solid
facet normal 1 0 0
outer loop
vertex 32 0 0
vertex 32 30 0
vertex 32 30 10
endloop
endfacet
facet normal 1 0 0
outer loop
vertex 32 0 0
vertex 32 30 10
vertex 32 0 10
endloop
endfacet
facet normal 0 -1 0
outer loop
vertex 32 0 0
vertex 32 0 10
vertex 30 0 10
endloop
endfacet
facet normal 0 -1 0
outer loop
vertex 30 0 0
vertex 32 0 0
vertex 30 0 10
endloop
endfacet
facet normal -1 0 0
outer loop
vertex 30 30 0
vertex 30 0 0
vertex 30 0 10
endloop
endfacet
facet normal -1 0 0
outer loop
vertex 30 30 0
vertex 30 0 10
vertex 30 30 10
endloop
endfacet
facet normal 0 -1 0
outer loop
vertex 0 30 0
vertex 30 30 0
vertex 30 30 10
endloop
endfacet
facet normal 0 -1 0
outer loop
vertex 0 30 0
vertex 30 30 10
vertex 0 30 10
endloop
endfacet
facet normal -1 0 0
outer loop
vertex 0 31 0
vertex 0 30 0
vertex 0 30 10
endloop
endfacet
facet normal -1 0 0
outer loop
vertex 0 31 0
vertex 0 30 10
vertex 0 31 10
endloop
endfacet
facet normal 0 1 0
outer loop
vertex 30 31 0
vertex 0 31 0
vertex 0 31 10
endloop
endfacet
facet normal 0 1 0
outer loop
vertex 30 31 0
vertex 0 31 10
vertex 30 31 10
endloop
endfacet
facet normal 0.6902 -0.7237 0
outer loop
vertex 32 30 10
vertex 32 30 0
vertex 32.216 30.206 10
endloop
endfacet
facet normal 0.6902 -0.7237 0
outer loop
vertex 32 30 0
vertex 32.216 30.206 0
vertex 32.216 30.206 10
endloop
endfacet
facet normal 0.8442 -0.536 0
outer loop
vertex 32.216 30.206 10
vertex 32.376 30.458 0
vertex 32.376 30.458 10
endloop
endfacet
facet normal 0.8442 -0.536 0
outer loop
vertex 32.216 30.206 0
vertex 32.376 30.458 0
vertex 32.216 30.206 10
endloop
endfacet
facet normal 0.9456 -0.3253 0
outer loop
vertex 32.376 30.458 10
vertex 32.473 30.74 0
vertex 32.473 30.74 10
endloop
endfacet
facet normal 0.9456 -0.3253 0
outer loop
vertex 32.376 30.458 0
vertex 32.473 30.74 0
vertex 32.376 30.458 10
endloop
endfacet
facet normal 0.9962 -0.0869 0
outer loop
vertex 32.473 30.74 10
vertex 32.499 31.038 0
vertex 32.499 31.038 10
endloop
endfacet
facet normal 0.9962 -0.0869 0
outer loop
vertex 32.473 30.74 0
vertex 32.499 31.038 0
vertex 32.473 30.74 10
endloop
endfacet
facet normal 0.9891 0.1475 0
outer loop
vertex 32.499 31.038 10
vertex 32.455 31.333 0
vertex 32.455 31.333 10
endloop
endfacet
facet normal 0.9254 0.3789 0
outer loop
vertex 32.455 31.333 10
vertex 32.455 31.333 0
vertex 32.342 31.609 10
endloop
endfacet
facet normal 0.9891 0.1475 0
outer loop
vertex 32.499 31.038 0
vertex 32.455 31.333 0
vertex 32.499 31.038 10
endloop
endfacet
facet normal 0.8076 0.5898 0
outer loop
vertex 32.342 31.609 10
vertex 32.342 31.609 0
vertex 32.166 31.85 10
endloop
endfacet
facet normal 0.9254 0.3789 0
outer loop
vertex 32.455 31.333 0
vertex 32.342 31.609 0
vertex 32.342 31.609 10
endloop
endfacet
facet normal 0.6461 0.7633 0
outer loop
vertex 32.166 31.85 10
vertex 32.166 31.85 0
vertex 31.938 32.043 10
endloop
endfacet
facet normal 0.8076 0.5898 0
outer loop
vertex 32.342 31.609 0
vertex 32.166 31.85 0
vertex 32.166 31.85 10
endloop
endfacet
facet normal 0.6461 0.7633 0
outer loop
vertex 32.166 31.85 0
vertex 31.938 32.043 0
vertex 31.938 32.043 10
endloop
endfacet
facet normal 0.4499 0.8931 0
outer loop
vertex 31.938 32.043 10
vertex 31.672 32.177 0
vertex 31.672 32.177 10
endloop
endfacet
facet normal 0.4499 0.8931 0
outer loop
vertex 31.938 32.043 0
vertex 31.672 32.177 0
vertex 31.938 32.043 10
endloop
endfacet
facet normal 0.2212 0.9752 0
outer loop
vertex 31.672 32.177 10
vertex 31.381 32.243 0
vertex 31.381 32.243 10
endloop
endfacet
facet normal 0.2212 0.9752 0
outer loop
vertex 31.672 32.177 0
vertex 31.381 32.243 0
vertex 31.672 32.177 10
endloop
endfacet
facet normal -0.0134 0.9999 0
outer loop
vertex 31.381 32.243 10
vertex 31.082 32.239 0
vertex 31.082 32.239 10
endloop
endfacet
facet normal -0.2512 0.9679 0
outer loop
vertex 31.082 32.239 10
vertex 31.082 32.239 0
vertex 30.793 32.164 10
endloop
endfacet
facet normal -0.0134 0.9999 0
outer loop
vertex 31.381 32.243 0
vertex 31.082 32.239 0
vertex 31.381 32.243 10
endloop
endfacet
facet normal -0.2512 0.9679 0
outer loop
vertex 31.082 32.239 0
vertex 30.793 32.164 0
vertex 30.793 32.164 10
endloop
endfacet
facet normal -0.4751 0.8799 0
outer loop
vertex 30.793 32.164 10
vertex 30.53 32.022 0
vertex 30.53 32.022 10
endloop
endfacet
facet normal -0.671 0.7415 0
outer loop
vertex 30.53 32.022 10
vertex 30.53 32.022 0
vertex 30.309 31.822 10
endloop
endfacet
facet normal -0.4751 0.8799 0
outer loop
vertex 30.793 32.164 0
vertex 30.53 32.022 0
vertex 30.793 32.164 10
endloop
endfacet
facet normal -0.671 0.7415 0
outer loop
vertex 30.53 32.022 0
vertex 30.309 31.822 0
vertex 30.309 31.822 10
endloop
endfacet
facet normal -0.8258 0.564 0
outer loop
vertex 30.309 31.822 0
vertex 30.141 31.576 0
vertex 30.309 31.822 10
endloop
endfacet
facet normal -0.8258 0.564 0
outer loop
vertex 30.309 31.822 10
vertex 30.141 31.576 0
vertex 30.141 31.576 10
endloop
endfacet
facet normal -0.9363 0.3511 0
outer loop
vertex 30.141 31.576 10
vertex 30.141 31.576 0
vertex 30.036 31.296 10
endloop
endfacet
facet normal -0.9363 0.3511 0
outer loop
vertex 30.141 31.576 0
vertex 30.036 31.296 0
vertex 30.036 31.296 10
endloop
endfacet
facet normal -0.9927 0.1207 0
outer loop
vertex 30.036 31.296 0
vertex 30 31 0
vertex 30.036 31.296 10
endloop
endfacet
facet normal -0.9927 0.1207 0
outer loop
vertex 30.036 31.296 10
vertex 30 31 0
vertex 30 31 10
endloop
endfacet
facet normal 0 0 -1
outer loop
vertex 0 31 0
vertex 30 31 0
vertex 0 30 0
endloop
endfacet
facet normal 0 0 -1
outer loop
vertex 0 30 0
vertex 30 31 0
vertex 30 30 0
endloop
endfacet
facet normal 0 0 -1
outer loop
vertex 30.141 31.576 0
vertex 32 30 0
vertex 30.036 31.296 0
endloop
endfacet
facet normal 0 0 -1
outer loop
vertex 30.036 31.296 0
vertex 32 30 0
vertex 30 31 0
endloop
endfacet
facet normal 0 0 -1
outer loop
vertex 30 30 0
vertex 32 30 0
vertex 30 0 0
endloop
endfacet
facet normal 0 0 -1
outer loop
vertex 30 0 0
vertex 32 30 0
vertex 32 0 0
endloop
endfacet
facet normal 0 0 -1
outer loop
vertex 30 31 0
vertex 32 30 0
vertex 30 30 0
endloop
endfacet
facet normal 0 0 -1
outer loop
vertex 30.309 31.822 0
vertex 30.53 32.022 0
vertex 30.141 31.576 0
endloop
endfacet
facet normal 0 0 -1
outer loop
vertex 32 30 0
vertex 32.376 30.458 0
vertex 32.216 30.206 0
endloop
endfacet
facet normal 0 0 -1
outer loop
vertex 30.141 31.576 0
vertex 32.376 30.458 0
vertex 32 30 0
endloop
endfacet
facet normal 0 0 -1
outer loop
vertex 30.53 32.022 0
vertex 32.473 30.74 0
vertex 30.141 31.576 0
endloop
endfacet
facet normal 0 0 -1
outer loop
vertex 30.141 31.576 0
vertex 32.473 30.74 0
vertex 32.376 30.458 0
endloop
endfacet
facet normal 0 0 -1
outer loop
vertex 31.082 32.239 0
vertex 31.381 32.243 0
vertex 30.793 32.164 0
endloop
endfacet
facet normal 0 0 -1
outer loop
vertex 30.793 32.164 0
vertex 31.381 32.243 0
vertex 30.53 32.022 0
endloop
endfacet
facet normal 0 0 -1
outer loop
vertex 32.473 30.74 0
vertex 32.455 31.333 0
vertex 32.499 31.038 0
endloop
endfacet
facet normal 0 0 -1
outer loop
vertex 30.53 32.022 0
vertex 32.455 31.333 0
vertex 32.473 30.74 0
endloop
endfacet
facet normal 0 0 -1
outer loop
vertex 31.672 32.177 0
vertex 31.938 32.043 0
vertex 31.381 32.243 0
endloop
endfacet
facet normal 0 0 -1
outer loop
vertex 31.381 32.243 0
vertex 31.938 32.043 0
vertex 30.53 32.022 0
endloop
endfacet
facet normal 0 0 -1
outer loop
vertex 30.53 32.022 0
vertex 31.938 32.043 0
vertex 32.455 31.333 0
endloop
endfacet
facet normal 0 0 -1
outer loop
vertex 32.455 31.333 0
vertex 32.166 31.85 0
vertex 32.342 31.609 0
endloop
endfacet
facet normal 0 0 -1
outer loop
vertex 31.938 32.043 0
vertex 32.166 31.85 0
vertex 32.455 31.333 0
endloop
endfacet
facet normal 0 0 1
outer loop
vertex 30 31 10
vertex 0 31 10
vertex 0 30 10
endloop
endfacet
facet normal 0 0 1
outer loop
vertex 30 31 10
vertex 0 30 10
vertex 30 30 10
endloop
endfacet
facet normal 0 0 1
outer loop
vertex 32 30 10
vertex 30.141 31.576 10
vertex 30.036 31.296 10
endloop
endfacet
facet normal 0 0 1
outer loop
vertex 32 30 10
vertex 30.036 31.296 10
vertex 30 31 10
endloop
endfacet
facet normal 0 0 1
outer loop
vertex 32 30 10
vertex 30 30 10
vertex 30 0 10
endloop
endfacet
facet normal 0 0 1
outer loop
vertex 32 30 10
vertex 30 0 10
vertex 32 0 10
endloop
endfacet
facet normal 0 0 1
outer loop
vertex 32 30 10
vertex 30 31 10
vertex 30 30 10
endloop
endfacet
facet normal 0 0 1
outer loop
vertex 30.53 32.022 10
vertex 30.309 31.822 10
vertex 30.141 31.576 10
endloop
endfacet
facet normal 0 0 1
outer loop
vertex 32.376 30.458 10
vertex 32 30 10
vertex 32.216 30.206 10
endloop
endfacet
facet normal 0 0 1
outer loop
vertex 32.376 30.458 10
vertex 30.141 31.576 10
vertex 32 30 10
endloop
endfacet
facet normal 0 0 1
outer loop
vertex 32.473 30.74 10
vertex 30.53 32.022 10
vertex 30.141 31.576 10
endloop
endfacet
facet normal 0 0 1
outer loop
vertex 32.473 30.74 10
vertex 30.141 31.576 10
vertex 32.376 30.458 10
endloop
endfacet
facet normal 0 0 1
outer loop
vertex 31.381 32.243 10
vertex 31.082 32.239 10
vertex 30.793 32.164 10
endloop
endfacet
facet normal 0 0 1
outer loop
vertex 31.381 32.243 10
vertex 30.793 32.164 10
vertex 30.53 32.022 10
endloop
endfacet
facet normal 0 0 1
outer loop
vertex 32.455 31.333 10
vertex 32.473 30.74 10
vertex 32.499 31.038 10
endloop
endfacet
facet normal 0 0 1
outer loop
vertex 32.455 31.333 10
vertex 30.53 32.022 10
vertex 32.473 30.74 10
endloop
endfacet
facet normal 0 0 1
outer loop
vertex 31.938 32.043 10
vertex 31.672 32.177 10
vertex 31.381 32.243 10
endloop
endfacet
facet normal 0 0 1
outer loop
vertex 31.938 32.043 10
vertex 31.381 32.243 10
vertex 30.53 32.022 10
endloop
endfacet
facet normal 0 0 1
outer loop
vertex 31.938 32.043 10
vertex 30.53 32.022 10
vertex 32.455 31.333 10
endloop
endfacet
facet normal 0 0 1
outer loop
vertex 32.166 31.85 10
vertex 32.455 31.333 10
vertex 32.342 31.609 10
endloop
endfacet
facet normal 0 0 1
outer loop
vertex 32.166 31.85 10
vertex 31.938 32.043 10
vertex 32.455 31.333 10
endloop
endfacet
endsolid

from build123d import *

# Parameters (mm, degrees)
PAD_DEPTH = 10


with BuildPart() as part:
    # Sketch → Pad (new body)
    with BuildSketch(Plane.XY):
        with BuildLine():
            Line((30, 0), (30, 30))
            Line((30, 30), (0, 30))
            Line((0, 30), (0, 31))
            Line((0, 31), (30, 31))
            ThreePointArc((32, 30), (31.809017, 32.118034), (30, 31))
            Line((32, 30), (32, 0))
            Line((32, 0), (30, 0))
        make_face()
    extrude(amount=PAD_DEPTH)


solid = part.part
